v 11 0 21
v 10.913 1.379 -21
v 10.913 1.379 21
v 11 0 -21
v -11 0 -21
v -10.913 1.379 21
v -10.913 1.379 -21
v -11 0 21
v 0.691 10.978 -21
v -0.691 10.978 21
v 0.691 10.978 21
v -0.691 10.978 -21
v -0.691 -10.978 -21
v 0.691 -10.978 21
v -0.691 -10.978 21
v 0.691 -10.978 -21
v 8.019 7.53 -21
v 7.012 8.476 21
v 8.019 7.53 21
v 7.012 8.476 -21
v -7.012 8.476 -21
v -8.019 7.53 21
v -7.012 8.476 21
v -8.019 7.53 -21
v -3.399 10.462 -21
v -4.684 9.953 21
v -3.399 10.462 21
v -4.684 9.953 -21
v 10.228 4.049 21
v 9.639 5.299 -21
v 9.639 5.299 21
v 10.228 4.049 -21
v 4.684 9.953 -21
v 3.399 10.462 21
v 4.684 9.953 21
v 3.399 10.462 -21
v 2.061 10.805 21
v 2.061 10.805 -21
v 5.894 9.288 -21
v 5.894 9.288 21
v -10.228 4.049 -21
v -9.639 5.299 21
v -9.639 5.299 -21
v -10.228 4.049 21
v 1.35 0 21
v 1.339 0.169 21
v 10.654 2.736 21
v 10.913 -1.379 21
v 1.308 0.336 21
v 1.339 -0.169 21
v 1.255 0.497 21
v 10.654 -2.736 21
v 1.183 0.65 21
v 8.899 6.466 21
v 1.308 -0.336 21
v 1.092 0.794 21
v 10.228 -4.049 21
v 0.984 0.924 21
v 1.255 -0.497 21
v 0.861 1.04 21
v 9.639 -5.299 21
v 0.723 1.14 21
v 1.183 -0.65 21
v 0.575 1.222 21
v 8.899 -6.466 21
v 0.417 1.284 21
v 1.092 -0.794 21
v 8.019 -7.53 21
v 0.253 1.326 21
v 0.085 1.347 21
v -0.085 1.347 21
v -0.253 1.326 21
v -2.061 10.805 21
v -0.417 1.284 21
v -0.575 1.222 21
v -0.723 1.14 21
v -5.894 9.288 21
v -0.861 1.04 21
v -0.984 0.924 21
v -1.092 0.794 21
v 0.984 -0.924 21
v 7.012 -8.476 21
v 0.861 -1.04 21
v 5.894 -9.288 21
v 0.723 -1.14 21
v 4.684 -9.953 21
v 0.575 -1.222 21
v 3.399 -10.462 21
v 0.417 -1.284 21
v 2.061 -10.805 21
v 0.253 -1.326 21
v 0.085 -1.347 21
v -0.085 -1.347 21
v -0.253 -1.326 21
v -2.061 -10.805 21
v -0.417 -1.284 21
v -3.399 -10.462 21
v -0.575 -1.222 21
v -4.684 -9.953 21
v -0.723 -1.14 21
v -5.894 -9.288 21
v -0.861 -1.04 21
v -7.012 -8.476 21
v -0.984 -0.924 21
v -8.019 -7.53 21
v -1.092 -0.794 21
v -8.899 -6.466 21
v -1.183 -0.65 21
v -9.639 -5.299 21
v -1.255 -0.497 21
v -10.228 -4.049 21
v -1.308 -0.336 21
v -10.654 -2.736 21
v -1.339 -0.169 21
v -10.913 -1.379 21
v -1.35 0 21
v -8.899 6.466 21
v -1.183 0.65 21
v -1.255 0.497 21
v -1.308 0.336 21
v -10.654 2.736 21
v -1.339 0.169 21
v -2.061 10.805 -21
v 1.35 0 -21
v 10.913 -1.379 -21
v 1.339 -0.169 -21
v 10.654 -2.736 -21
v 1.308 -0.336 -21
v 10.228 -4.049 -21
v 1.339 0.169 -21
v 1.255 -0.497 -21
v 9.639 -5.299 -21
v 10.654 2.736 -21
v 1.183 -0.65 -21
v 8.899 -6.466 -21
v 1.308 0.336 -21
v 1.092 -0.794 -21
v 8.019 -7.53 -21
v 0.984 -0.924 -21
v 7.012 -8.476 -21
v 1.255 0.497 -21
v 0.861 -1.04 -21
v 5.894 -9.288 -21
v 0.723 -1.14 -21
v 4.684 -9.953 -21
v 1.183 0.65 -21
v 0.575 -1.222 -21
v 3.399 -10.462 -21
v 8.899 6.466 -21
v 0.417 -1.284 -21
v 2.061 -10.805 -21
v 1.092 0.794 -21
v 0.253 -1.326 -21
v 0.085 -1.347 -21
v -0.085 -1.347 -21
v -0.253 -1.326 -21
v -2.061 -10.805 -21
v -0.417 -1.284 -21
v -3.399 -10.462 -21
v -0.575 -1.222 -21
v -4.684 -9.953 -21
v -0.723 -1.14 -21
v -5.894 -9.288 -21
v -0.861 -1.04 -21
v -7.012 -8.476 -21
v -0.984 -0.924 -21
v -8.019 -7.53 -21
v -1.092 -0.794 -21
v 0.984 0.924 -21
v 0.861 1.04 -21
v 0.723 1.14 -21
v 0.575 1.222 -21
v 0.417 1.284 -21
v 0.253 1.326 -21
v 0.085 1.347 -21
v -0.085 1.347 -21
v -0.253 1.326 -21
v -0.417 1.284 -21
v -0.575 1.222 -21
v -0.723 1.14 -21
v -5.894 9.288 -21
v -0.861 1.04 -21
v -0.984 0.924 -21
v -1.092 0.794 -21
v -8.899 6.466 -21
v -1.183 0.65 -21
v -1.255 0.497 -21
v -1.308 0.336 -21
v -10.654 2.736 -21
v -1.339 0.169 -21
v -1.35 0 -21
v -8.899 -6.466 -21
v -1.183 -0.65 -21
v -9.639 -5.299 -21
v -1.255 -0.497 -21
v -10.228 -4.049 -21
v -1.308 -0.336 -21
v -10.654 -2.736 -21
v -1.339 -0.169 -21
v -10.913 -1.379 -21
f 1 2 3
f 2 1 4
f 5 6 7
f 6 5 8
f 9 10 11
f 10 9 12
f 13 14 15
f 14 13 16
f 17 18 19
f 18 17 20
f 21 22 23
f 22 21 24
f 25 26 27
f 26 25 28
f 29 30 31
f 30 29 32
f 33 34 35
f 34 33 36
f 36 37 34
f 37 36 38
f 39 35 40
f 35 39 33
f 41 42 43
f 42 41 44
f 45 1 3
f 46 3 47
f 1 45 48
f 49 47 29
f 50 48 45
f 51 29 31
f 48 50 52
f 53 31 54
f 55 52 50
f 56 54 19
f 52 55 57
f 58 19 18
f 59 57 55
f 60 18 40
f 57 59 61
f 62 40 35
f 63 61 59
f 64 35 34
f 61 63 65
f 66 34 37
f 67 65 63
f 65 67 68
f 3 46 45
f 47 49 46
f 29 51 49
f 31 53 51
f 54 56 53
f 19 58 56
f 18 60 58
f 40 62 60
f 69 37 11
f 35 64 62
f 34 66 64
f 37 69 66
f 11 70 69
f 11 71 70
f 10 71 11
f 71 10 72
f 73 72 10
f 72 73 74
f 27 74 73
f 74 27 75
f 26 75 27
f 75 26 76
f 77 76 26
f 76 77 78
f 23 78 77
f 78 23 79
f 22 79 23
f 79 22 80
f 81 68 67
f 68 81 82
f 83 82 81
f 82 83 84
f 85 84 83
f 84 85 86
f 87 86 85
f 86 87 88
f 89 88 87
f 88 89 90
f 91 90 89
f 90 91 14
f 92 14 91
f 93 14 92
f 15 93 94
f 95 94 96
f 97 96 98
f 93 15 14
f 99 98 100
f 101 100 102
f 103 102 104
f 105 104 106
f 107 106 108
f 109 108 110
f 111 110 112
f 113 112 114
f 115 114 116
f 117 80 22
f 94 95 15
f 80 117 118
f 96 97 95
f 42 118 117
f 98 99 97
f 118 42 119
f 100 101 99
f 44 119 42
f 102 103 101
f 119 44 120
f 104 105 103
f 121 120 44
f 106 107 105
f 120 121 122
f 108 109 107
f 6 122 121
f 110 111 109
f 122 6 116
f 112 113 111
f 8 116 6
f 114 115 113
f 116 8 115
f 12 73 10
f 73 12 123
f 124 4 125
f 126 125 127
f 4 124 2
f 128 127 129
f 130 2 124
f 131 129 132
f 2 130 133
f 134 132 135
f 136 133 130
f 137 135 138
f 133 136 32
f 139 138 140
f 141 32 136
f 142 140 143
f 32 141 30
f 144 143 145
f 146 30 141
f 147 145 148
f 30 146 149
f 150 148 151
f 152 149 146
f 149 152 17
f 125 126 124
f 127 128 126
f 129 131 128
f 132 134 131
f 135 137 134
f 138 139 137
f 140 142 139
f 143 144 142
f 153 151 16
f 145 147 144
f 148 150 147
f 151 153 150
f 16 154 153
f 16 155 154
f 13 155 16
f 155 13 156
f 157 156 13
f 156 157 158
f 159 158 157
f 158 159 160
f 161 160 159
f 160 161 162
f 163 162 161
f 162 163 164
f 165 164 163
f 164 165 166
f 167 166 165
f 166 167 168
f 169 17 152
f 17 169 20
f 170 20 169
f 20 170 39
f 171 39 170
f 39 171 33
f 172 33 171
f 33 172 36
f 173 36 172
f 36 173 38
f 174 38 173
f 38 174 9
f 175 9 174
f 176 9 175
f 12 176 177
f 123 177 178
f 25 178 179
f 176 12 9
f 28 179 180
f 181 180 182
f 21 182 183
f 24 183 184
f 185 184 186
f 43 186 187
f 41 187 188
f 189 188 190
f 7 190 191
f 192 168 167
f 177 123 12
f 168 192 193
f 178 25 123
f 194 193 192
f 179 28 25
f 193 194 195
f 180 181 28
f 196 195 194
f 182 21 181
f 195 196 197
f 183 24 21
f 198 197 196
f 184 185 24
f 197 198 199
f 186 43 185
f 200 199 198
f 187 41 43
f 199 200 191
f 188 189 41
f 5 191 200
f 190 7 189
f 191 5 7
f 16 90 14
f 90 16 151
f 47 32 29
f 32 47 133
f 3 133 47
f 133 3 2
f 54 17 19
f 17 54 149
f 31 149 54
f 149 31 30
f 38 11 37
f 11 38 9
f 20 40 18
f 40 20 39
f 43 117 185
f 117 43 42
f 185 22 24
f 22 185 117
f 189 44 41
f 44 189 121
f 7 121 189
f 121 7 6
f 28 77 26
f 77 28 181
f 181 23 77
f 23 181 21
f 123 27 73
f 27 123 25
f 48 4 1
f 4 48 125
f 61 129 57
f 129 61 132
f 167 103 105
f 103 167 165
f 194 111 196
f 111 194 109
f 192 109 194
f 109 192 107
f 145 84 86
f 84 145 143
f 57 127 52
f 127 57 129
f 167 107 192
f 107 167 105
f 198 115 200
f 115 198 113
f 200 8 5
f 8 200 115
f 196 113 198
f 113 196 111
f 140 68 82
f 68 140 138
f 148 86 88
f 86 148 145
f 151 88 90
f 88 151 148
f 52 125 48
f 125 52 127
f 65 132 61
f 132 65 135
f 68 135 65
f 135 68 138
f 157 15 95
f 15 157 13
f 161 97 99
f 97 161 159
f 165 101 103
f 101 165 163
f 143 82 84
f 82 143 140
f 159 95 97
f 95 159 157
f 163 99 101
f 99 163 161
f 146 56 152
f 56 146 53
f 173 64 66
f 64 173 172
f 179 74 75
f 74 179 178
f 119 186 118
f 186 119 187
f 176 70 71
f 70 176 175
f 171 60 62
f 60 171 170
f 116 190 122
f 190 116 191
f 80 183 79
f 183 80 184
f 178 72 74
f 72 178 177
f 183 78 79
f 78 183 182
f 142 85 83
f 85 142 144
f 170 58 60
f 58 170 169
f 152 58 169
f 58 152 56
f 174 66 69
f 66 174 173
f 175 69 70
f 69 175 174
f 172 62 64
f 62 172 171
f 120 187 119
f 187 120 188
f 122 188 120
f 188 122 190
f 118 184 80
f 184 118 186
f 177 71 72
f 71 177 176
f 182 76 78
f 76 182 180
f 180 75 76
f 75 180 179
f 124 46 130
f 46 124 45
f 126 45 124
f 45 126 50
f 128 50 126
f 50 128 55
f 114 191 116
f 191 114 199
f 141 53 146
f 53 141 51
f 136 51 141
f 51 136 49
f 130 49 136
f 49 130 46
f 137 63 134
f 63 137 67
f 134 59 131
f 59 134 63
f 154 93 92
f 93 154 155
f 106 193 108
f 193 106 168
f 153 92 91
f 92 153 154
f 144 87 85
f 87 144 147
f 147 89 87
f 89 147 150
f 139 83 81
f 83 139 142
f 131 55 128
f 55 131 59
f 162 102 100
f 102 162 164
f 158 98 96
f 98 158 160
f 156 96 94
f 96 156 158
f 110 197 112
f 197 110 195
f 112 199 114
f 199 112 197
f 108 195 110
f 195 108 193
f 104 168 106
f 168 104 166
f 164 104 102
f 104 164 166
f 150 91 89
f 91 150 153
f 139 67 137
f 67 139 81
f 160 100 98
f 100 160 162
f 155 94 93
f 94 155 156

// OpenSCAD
$fn = 50;


difference() {
	union() {
		translate(v = [0, 0, -21.0000000000]) {
			cylinder(h = 42, r = 11.0000000000);
		}
	}
	union() {
		translate(v = [0, 0, -100.0000000000]) {
			cylinder(h = 200, r = 1.3500000000);
		}
	}
}
